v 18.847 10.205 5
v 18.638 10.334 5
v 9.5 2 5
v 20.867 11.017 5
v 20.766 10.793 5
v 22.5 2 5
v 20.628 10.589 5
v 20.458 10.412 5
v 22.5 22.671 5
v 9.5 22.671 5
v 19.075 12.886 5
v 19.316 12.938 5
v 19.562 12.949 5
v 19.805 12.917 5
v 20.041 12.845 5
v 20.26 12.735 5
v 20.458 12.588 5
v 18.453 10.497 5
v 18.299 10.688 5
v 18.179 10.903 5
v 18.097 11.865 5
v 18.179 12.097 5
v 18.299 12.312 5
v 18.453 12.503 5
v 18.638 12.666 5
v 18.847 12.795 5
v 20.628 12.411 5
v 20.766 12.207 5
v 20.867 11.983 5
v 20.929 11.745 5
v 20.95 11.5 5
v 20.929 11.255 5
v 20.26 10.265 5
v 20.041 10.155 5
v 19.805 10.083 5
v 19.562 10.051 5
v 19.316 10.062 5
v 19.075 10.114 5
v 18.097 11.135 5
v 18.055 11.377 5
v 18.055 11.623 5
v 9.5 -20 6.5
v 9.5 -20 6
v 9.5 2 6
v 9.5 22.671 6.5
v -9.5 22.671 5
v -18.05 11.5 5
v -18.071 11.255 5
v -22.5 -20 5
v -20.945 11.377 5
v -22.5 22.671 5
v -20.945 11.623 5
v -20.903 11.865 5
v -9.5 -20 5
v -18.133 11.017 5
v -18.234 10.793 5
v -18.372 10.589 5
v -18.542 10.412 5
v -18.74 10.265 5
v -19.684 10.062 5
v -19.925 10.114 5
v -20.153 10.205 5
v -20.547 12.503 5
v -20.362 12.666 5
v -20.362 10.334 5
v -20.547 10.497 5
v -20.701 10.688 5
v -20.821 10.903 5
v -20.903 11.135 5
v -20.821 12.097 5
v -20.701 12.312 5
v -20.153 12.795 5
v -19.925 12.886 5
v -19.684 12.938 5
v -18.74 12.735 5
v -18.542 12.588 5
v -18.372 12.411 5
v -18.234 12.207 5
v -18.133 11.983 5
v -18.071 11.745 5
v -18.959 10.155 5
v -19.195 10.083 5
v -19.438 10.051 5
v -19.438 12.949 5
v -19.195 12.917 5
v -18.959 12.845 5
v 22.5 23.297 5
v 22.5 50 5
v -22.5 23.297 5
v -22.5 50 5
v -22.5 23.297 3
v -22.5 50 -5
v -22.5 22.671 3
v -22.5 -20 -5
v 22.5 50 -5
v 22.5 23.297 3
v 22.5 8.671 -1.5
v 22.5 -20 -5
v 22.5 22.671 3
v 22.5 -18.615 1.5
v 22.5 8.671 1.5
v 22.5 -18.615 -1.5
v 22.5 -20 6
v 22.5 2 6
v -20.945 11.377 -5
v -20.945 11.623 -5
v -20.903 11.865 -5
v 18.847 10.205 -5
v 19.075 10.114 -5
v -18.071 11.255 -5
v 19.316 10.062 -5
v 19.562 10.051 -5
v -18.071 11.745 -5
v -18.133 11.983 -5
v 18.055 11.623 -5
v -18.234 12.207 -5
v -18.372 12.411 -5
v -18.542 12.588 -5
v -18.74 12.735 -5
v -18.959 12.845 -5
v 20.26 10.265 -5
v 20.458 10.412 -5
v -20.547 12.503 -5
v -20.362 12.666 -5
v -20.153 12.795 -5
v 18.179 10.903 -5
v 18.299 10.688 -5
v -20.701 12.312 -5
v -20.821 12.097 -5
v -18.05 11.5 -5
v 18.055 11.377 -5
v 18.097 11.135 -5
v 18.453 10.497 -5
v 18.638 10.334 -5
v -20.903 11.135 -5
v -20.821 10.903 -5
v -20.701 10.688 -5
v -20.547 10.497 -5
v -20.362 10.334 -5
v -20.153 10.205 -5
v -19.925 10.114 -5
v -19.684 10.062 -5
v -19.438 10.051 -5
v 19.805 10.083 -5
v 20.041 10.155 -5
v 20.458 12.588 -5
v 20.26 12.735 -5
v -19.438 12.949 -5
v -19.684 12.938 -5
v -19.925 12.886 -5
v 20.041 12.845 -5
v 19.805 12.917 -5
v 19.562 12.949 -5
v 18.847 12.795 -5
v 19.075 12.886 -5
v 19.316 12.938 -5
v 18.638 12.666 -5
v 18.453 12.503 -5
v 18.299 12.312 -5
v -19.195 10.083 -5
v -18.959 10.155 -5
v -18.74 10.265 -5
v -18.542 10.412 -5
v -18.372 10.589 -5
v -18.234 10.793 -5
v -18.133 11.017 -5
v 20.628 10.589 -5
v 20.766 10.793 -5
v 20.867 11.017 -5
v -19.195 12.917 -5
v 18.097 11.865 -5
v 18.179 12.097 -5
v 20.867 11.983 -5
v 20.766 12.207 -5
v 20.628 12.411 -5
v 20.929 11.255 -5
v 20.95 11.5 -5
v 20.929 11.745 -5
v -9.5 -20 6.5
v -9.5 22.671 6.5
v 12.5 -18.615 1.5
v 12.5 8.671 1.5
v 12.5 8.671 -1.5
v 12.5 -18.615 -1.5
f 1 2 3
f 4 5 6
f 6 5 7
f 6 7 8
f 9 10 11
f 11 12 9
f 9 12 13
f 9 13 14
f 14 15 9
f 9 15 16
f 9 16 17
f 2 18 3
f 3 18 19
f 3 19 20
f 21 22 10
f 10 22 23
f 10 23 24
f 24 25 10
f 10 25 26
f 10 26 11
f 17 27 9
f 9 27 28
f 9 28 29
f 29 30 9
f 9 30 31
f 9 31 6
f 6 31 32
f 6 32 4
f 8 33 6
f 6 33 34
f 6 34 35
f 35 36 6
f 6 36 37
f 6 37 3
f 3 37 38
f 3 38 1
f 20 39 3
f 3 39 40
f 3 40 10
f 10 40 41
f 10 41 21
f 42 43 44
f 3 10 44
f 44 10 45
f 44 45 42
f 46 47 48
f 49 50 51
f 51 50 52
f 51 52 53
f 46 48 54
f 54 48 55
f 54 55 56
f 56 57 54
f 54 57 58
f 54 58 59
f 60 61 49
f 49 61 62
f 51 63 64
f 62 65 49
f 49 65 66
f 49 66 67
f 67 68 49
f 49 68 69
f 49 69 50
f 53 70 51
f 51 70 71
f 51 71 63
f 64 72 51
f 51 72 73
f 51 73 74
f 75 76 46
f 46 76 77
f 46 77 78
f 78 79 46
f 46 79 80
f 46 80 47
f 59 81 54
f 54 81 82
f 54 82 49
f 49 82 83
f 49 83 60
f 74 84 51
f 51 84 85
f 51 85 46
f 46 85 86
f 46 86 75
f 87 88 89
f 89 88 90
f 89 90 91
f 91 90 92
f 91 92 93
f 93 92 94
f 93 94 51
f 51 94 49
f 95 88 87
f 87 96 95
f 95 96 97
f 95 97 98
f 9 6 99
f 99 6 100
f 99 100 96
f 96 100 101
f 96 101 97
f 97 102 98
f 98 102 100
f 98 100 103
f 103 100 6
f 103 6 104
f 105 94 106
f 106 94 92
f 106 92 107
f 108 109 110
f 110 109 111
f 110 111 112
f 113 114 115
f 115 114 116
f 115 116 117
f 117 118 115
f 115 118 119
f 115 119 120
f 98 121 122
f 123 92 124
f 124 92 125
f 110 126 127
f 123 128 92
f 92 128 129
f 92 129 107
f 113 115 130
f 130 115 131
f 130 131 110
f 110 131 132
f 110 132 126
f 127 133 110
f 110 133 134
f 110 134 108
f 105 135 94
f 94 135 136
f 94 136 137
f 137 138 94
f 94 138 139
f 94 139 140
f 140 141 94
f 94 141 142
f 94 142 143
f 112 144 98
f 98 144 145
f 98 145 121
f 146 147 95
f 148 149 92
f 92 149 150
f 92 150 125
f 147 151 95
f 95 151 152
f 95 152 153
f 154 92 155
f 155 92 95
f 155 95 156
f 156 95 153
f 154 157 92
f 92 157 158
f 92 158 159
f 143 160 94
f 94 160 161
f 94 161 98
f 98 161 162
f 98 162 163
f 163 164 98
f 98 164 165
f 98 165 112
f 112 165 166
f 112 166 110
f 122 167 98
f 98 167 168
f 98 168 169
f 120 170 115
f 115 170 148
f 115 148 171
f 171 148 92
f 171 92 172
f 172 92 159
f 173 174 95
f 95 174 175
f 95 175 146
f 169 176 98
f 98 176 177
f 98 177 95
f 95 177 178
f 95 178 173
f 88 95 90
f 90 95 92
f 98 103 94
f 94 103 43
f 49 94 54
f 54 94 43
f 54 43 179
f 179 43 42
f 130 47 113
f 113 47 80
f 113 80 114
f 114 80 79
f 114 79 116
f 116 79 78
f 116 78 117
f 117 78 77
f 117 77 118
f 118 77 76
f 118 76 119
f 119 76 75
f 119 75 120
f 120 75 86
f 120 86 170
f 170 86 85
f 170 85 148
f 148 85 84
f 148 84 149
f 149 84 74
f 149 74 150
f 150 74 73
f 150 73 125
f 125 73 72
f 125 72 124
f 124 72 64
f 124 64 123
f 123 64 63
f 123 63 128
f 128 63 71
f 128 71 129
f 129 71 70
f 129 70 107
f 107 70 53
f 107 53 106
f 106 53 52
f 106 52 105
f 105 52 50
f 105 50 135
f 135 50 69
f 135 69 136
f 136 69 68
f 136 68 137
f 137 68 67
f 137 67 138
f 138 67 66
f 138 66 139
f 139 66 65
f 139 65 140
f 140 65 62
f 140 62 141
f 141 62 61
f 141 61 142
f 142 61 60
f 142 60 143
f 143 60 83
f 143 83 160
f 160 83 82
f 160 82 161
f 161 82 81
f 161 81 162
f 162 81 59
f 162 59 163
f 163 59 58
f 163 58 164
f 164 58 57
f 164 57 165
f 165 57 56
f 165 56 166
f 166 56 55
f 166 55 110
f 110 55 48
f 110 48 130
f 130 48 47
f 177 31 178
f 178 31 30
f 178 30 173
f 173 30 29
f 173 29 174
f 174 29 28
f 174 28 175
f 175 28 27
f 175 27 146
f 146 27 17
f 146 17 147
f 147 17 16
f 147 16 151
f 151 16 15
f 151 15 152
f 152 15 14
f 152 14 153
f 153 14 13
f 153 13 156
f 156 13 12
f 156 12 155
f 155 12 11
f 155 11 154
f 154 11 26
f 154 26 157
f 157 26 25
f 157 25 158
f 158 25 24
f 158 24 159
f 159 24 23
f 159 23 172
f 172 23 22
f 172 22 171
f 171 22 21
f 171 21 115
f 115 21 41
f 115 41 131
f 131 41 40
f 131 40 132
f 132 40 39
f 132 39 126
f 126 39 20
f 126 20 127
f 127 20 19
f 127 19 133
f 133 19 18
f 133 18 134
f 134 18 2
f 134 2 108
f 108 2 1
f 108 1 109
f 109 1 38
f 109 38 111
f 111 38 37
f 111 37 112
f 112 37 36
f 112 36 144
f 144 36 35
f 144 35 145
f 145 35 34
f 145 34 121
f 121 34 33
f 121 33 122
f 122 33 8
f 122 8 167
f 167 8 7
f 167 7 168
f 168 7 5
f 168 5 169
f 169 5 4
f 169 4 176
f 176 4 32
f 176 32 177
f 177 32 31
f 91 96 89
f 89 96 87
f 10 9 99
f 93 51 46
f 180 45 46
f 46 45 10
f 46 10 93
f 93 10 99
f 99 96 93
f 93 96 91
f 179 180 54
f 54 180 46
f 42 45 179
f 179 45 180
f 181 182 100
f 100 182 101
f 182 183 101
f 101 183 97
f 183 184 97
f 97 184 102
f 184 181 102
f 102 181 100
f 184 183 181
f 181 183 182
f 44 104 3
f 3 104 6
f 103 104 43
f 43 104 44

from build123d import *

# Parameters (mm, degrees)
SKETCH2_W           = 45
SKETCH2_H           = 10
BOSS_EXTRUDE1_DEPTH = 40
SKETCH4_W           = 45
SKETCH4_H           = 10
BOSS_EXTRUDE2_DEPTH = 10
SKETCH8_W           = 45
SKETCH8_H           = 10
BOSS_EXTRUDE3_DEPTH = 20
SKETCH9_R           = 1.45
CUT_EXTRUDE2_DEPTH  = 20
SKETCH10_W          = 45
SKETCH10_H          = 0.626165357
CUT_EXTRUDE3_DEPTH  = 2
SKETCH11_W          = 19
SKETCH11_H          = 42.671327575
BOSS_EXTRUDE4_DEPTH = 1.5
SKETCH12_W          = 3
SKETCH12_H          = 27.286335608
CUT_EXTRUDE6_DEPTH  = 10
SKETCH13_W          = 13
SKETCH13_H          = 22
BOSS_EXTRUDE5_DEPTH = 1


with BuildPart() as part:
    # Sketch2 → Boss-Extrude1 (new body)
    with BuildSketch(Plane(origin=(0, 0, 0), x_dir=(1, 0, 0), z_dir=(0, 1, 0))):
        Rectangle(SKETCH2_W, SKETCH2_H)
    extrude(amount=BOSS_EXTRUDE1_DEPTH)

    # Sketch4 → Boss-Extrude2 (add)
    with BuildSketch(Plane(origin=(0, 40, 0), x_dir=(1, 0, 0), z_dir=(0, 1, 0))):
        Rectangle(SKETCH4_W, SKETCH4_H)
    extrude(amount=BOSS_EXTRUDE2_DEPTH)

    # Sketch8 → Boss-Extrude3 (add)
    with BuildSketch(Plane.XZ):
        Rectangle(SKETCH8_W, SKETCH8_H)
    extrude(amount=BOSS_EXTRUDE3_DEPTH)

    # Sketch9 → Cut-Extrude2 (cut)
    with BuildSketch(Plane.XY.offset(5)):
        with Locations((19.5, 11.5)):
            Circle(SKETCH9_R)
        with Locations((-19.5, 11.5)):
            Circle(SKETCH9_R)
    extrude(amount=-CUT_EXTRUDE2_DEPTH, mode=Mode.SUBTRACT)

    # Sketch10 → Cut-Extrude3 (cut)
    with BuildSketch(Plane.XY.offset(5)):
        with Locations((0, 22.984410254)):
            Rectangle(SKETCH10_W, SKETCH10_H)
    extrude(amount=-CUT_EXTRUDE3_DEPTH, mode=Mode.SUBTRACT)

    # Sketch11 → Boss-Extrude4 (add)
    with BuildSketch(Plane.XY.offset(5)):
        with Locations((0, 1.335663788)):
            Rectangle(SKETCH11_W, SKETCH11_H)
    extrude(amount=BOSS_EXTRUDE4_DEPTH)

    # Sketch12 → Cut-Extrude6 (cut)
    with BuildSketch(Plane(origin=(22.5, 0, 0), x_dir=(0, 0, -1), z_dir=(1, 0, 0))):
        with Locations((0, -4.971840229)):
            Rectangle(SKETCH12_W, SKETCH12_H)
    extrude(amount=-CUT_EXTRUDE6_DEPTH, mode=Mode.SUBTRACT)

    # Sketch13 → Boss-Extrude5 (add)
    with BuildSketch(Plane.XY.offset(5)):
        with Locations((16, -9)):
            Rectangle(SKETCH13_W, SKETCH13_H)
    extrude(amount=BOSS_EXTRUDE5_DEPTH)


solid = part.part
